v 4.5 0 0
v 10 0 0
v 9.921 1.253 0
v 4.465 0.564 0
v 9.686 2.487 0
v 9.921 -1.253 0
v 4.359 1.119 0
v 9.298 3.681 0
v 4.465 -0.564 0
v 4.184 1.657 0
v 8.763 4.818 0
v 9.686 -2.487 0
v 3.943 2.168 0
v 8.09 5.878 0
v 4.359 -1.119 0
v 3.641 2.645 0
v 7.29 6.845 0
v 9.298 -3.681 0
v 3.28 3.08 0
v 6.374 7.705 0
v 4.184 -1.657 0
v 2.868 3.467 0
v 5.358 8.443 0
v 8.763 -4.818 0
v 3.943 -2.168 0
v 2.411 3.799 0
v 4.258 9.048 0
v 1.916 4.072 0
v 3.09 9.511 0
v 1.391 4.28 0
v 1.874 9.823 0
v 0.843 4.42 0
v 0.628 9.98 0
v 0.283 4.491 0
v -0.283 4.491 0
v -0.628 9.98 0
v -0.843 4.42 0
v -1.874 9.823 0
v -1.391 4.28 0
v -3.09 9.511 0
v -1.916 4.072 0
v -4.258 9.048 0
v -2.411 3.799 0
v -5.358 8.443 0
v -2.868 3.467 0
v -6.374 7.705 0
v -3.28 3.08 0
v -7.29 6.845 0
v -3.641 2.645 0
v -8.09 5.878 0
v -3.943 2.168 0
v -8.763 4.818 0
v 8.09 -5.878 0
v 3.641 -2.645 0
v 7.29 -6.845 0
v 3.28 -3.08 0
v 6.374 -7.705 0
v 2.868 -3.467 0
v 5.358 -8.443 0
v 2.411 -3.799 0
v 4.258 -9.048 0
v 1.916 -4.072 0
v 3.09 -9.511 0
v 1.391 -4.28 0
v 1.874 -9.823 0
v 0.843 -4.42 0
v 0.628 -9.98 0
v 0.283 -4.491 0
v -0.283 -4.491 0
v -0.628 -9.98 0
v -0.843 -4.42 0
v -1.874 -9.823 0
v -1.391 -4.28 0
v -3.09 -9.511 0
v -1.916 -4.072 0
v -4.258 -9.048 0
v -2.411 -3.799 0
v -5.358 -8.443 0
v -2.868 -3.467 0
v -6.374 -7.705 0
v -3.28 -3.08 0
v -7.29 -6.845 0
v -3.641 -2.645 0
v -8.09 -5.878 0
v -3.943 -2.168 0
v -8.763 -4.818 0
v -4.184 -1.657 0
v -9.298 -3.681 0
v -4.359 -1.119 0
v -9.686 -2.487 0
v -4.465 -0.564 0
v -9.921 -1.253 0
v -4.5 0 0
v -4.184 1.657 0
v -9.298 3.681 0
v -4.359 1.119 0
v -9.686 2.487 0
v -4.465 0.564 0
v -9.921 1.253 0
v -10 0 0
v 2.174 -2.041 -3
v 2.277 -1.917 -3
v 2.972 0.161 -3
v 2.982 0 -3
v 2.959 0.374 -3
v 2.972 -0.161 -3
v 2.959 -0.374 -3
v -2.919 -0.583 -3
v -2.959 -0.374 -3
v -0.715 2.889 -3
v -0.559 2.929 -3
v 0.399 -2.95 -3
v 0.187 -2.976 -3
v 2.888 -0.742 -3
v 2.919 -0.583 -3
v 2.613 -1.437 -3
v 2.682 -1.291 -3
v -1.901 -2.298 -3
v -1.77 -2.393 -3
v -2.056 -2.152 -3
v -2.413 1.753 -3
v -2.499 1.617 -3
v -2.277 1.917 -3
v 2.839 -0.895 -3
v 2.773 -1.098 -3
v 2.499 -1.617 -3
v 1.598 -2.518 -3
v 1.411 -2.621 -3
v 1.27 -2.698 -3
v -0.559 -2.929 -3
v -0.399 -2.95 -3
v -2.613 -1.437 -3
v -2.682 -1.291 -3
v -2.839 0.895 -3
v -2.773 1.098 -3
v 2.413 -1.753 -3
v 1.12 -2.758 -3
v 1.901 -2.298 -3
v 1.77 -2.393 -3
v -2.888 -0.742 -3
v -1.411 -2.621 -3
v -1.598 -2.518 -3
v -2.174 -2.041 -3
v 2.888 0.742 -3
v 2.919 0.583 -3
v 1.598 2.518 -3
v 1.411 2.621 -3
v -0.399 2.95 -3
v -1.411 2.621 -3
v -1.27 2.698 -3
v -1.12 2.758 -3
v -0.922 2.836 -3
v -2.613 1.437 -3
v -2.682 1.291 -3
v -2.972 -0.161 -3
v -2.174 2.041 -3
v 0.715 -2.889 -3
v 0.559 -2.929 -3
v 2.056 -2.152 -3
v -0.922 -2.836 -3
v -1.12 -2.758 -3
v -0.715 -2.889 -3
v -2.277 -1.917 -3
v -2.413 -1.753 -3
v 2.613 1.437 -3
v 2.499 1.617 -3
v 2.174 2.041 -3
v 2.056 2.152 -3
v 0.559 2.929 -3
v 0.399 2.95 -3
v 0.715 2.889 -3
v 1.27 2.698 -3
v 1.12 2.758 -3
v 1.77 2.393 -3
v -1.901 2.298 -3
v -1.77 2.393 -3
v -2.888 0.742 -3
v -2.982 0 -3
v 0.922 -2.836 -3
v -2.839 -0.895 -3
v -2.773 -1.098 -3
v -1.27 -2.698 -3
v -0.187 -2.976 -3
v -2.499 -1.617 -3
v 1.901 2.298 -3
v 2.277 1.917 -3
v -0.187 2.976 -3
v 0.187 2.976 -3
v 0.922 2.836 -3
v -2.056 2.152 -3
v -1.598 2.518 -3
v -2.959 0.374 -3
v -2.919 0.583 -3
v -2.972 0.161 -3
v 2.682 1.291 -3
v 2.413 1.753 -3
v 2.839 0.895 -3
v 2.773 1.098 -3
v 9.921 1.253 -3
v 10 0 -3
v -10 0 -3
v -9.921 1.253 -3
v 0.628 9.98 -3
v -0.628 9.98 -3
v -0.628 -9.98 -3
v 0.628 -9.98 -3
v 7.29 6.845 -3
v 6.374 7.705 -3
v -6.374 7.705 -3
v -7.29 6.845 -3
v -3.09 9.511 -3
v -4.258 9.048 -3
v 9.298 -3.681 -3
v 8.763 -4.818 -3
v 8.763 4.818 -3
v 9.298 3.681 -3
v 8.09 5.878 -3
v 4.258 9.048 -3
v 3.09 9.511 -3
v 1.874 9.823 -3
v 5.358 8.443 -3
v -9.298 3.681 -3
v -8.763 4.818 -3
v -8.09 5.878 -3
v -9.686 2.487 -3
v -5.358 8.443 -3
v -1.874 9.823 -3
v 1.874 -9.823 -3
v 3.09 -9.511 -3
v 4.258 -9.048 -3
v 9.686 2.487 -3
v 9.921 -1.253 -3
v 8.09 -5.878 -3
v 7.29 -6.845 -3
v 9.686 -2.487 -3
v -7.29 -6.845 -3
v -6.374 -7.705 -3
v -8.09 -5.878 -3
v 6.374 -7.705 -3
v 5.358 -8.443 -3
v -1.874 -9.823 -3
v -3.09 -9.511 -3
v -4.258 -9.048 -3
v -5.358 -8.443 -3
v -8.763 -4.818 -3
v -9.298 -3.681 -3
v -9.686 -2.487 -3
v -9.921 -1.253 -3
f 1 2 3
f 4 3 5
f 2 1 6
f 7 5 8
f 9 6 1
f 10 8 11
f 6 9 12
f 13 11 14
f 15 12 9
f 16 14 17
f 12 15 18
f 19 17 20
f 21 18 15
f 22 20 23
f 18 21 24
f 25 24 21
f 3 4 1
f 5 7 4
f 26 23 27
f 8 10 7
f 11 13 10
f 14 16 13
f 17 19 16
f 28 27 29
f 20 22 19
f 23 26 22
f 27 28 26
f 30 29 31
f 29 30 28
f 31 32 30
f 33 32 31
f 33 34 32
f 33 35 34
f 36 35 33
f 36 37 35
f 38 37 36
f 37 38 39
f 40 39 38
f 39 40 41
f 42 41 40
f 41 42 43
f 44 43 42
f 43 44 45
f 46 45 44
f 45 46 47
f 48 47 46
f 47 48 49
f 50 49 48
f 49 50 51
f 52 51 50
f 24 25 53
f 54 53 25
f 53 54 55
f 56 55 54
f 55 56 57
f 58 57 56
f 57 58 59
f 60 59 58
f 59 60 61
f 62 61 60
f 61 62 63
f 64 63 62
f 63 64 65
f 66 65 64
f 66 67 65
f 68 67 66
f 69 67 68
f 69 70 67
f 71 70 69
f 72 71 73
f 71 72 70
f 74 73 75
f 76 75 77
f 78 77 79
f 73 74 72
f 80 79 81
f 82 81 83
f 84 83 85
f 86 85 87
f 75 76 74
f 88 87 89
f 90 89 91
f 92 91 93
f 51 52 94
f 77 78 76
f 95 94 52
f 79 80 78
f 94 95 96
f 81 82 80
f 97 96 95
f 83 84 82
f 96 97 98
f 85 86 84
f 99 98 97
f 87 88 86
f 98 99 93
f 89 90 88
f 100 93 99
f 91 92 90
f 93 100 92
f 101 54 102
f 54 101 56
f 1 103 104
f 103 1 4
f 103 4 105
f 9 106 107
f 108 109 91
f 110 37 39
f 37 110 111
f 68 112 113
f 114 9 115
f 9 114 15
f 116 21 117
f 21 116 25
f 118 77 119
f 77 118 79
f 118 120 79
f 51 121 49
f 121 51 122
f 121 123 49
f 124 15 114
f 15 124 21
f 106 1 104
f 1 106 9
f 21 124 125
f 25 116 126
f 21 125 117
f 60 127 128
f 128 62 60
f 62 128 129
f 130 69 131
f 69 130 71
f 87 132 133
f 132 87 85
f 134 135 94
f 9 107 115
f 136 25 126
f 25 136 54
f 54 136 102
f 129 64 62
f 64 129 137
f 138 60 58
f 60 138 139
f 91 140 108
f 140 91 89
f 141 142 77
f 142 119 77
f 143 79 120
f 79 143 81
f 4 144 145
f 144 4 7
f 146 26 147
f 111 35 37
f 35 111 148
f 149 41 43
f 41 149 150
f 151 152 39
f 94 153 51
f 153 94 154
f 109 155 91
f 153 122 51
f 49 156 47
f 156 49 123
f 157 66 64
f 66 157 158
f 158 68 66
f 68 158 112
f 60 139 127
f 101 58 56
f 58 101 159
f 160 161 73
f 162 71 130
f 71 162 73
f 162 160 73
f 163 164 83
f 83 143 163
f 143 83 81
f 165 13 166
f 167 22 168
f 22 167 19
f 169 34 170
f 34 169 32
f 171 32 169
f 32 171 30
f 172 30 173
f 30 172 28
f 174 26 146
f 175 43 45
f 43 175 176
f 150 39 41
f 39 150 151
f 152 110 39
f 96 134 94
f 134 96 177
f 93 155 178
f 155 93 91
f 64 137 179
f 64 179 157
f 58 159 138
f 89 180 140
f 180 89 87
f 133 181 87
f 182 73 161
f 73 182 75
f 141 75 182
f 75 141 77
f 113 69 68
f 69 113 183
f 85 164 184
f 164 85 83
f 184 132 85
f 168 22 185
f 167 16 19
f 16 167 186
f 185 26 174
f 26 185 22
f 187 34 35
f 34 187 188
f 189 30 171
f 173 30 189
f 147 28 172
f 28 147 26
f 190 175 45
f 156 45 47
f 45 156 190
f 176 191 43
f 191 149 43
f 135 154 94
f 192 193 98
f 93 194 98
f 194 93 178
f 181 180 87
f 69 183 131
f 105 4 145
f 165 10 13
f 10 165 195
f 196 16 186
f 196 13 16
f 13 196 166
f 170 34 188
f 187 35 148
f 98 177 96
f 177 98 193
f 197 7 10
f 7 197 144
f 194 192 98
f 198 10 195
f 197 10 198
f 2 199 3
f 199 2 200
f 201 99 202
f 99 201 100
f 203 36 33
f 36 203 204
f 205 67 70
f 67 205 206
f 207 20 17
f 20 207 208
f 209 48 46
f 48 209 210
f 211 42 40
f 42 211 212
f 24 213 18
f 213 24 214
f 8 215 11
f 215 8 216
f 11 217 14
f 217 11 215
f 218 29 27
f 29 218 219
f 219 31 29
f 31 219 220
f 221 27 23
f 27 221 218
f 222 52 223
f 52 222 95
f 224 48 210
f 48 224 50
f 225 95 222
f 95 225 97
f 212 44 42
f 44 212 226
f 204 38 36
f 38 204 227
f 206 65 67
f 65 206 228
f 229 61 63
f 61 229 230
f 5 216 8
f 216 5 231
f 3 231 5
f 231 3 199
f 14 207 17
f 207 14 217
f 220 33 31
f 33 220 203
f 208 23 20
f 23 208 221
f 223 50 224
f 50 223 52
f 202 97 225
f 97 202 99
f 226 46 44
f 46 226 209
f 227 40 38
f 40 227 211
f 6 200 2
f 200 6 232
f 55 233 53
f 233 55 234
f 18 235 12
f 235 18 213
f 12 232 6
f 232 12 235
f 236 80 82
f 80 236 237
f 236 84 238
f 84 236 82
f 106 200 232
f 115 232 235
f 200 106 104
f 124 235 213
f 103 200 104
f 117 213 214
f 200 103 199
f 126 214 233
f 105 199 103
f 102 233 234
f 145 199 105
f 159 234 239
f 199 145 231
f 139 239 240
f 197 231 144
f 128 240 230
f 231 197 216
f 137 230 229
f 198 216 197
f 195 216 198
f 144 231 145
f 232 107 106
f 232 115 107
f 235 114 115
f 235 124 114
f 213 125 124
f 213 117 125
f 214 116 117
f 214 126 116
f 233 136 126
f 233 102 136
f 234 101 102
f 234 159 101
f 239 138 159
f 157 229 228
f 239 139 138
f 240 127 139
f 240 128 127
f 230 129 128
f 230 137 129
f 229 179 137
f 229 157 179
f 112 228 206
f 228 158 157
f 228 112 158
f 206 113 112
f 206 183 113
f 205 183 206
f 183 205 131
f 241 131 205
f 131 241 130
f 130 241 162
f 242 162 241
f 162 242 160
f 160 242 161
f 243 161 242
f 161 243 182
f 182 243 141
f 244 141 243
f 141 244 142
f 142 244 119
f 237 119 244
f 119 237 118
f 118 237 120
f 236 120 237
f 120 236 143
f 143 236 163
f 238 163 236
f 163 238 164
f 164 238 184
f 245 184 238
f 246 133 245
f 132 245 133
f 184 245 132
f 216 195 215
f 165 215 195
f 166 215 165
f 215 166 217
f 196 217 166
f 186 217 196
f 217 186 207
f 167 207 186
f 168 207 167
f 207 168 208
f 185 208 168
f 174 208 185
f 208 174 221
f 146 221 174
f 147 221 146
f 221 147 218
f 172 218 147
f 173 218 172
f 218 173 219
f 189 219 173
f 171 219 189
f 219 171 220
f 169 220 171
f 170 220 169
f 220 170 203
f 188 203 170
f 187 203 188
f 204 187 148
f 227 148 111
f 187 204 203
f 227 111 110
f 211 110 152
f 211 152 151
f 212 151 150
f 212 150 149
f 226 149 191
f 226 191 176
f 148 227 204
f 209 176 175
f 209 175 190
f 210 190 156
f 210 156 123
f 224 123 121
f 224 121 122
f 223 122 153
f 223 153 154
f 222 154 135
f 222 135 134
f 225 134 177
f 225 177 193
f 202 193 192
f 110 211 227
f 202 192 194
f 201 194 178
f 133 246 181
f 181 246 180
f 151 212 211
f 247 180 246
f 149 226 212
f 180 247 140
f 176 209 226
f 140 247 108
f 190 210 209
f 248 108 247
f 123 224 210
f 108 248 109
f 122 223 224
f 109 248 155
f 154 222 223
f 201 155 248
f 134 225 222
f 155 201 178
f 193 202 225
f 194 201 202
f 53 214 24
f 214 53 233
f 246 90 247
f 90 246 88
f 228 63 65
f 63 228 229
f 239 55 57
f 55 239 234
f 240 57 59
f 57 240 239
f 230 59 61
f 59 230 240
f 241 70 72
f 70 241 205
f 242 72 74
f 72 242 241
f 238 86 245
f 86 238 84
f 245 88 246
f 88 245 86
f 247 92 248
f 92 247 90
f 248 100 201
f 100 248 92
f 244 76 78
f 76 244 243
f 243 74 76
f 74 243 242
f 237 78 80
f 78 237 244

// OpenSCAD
$fn = 50;


difference() {
	union() {
		translate(v = [0, 0, -3.0000000000]) {
			cylinder(h = 3, r = 10.0000000000);
		}
		cylinder(h = 0, r = 16.0000000000);
	}
	union() {
		translate(v = [0, 0, 0]) {
			rotate(a = [0, 0, 0]) {
				difference() {
					union() {
						#translate(v = [0, 0, -3.0000000000]) {
							cylinder(h = 3, r = 2.2500000000);
						}
						#translate(v = [0, 0, -4.2000000000]) {
							cylinder(h = 4.2000000000, r = 10.0000000000, r1 = 2.3750000000, r2 = 4.5000000000);
						}
						#translate(v = [0, 0, -3.0000000000]) {
							cylinder(h = 3, r = 2.3750000000);
						}
						#translate(v = [0, 0, -3.0000000000]) {
							cylinder(h = 3, r = 2.2500000000);
						}
					}
					union();
				}
			}
		}
	}
}
